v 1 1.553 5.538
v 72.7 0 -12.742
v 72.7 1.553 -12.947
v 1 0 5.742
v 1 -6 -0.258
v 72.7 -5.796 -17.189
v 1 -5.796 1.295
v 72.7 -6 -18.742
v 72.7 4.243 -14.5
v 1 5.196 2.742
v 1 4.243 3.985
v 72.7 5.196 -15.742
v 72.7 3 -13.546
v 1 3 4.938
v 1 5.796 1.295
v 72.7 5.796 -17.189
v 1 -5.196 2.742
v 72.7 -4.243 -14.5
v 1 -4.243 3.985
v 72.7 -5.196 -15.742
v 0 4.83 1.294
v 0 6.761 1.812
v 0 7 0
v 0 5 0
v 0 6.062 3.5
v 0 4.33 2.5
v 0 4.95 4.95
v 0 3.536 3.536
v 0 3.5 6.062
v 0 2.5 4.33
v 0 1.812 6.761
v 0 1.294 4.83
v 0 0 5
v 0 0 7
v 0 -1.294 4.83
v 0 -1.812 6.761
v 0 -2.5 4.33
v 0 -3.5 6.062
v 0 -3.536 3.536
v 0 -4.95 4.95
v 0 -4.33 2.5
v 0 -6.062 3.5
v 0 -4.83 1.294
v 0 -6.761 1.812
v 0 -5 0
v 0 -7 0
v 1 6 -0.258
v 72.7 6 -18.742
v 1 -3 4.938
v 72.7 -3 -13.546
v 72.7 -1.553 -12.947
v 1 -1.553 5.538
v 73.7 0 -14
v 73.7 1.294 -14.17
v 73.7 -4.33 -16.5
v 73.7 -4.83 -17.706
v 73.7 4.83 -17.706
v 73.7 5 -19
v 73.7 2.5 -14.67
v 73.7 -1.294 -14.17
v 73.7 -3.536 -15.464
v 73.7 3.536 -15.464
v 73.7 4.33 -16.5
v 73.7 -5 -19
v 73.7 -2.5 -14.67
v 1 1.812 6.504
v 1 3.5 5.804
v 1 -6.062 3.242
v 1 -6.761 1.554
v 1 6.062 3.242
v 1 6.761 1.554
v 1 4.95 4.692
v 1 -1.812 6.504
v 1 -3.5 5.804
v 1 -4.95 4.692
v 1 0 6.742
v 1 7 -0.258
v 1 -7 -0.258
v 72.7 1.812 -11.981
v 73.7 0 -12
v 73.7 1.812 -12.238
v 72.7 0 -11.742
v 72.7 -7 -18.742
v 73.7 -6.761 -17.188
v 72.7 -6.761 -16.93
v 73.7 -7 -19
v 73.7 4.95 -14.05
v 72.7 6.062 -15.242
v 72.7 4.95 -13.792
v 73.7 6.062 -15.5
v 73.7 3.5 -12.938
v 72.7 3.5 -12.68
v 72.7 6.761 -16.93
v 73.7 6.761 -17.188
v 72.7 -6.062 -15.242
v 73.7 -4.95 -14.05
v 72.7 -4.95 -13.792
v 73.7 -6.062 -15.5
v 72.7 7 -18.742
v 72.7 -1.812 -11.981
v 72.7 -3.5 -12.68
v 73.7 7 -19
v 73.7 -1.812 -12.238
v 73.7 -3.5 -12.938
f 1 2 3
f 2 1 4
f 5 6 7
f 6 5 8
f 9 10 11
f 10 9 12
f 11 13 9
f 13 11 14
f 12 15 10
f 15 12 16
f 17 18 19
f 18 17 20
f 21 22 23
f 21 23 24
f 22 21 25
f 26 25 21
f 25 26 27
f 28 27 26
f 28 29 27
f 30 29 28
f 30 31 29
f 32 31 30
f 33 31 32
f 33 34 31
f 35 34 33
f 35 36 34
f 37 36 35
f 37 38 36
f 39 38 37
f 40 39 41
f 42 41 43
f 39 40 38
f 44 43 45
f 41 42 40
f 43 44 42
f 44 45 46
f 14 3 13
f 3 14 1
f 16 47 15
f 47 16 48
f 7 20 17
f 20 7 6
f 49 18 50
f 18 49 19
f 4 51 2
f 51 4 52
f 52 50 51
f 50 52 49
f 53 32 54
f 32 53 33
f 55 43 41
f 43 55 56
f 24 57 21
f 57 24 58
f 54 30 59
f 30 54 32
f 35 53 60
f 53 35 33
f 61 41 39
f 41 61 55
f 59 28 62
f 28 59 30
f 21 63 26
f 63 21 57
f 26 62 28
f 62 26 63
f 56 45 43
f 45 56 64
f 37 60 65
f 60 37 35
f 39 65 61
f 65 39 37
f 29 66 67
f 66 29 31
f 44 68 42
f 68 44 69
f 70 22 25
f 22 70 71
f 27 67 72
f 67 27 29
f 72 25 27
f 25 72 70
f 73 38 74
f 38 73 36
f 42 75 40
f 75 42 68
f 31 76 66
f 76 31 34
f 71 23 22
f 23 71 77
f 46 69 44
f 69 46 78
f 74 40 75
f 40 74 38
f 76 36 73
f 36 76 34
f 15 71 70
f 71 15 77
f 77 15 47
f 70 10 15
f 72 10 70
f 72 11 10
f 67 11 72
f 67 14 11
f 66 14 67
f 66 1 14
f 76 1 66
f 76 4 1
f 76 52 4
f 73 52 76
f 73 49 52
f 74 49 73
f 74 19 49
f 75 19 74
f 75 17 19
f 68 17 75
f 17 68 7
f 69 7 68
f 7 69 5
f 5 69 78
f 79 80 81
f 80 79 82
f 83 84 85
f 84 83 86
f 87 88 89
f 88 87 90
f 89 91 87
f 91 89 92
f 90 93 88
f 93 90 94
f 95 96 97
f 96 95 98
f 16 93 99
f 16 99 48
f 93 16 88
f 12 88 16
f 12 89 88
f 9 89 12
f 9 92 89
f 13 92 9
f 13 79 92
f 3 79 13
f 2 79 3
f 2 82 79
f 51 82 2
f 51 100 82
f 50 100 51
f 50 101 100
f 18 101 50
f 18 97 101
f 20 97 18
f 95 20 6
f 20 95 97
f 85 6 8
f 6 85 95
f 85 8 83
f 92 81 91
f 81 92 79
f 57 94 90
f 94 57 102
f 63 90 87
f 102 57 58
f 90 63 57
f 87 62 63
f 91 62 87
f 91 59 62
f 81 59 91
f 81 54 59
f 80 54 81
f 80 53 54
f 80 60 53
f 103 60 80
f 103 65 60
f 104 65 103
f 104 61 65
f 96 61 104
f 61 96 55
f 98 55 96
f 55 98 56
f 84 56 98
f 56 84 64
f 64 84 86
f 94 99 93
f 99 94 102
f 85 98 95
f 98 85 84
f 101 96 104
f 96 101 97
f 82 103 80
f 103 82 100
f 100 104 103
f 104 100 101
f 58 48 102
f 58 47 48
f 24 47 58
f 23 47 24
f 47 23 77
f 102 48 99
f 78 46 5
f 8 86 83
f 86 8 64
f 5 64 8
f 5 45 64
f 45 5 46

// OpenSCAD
// file: ../build_environments.scad
// build_environments.scad: modules to build level sections
//

module pool(diameter=10.0, wall_height=2.0, step_width=3.0, connections=[])
{
    difference() {
        union() {
        difference() {
            cylinder(h=0.5,r1=diameter+step_width,r2=diameter+step_width,$fn=48);
            translate([0,0,-0.1])
                cylinder(h=0.7,r1=diameter,r2=diameter,$fn=48);
        }
        difference() {
            cylinder(h=wall_height,r1=diameter+step_width+1.0,r2=diameter+step_width+1.0,$fn=48);
            translate([0,0,-0.1])
                cylinder(h=wall_height+0.2,r1=diameter+step_width,r2=diameter+step_width,$fn=48);
        }
        }
    
        for (c = connections)
        {
            rotate([0,90,0]) {
                angle = atan2(c[1],c[0]);
                rotate([-angle,0,0]) {
                    cylinder(h=diameter+5.0,r1=c[2],r2=c[2],$fn=48);
                }
            }
        }
    }
}

module straight(length=10.0, width=2.0, dy1=0.0, dy2=0.0, dz=0.0)
{
    dims = [0, 0, 0, 0, 0, (dz/length)];
    matrix = [
        [ 1, dims[0], dims[1], 0 ],
        [ dims[2], 1, dims[4], 0 ],
        [ dims[5], dims[3], 1, 0 ],
        [ 0, 0, 0, 1 ]
    ];
    multmatrix(matrix)
    difference() {
        translate([dy1,0,0])
        union() {
            rotate([0,90,0]) {
                difference() {
                    cylinder(h=(length-dy1-dy2),r1=width+1.0,r2=width+1.0,$fn=24);
                    translate([0,0,-0.1])
                        cylinder(h=(length-dy1-dy2+0.2),r1=width,r2=width,$fn=24);
                }
                difference() {
                    cylinder(h=1.0,r1=width+2.0,r2=width+2.0,$fn=24);
                    translate([0,0,-0.1])
                        cylinder(h=1.2,r1=width,r2=width,$fn=24);
                }
                translate([0,0,(length-dy1-dy2)-1.0]) {
                    difference() {
                        cylinder(h=1.0,r1=width+2.0,r2=width+2.0,$fn=24);
                        translate([0,0,-0.1])
                            cylinder(h=1.2,r1=width,r2=width,$fn=24);
                    }
                }
            }
        }
        translate([0,0,-(2*width+4.0)/2])
            cube([3*length,3*length,2*width+4.0],center=true);
    }
}

module curve(p0=[0,0], center=[0,0], dir=1, angle=0.0, width=2.0)
{
    radius = sqrt((p0[0]-center[0])*(p0[0]-center[0]) + (p0[1]-center[1])*(p0[1]-center[1]));
    if (dir == 0) {
        difference() {
            rotate([0,0,-90])
            difference() {
                rotate_extrude(angle = angle, convexity = 10, $fn=32)
                    translate([radius, 0, 0])
                        circle(r = width+1.0,$fn=24);
                rotate([0,0,-1.0])
                    rotate_extrude(angle = angle+2.0, convexity = 10, $fn=32)
                        translate([radius, 0, 0])
                            circle(r = width,$fn=24);
            }
            translate([0,0,-(2*width+4.0)/2])
                cube([5*radius,5*radius,2*width+4.0],center=true);
        }
    }
    else {
        difference() {
            rotate([0,0,90])
            difference() {
                rotate_extrude(angle = -angle, convexity = 10, $fn=32)
                    translate([radius, 0, 0])
                        circle(r = width+1.0,$fn=24);
                rotate([0,0,1.0])
                    rotate_extrude(angle = -angle-2.0, convexity = 10, $fn=32)
                        translate([radius, 0, 0])
                            circle(r = width,$fn=24);
            }
            translate([0,0,-(2*width+4.0)/2])
                cube([5*radius,5*radius,2*width+4.0],center=true);
        }
    }

}

// test pool
//pool(diameter=12.0000, wall_height=3.0000, step_width=3.0000, connections=[[0.0000,-26.0000,2.0000], [23.6074,0.0000,2.0000]]);

// test straight, slope
//straight(length=26.0000, width=2.0000, dy1=11.8322, dy2=6.7082, dz=0.0000);
//straight(length=29.1549, width=12.0000, dy1=0.0000, dy2=0.0000, dz=-15.0000);

// test curve
//curve(p0=[23.6074, 0.0000], center=[23.6074, 5.0000], dir=0, angle=60.1011, width=2.0000);
//curve(p0=[33.6426, 12.4219], center=[37.9771, 9.9295], dir=1, angle=120.4627, width=2.0000);
// main file
use <../build_environments.scad>;
straight(length=73.7000, width=5.0000, dy1=0.0000, dy2=0.0000, dz=-19.0000);
